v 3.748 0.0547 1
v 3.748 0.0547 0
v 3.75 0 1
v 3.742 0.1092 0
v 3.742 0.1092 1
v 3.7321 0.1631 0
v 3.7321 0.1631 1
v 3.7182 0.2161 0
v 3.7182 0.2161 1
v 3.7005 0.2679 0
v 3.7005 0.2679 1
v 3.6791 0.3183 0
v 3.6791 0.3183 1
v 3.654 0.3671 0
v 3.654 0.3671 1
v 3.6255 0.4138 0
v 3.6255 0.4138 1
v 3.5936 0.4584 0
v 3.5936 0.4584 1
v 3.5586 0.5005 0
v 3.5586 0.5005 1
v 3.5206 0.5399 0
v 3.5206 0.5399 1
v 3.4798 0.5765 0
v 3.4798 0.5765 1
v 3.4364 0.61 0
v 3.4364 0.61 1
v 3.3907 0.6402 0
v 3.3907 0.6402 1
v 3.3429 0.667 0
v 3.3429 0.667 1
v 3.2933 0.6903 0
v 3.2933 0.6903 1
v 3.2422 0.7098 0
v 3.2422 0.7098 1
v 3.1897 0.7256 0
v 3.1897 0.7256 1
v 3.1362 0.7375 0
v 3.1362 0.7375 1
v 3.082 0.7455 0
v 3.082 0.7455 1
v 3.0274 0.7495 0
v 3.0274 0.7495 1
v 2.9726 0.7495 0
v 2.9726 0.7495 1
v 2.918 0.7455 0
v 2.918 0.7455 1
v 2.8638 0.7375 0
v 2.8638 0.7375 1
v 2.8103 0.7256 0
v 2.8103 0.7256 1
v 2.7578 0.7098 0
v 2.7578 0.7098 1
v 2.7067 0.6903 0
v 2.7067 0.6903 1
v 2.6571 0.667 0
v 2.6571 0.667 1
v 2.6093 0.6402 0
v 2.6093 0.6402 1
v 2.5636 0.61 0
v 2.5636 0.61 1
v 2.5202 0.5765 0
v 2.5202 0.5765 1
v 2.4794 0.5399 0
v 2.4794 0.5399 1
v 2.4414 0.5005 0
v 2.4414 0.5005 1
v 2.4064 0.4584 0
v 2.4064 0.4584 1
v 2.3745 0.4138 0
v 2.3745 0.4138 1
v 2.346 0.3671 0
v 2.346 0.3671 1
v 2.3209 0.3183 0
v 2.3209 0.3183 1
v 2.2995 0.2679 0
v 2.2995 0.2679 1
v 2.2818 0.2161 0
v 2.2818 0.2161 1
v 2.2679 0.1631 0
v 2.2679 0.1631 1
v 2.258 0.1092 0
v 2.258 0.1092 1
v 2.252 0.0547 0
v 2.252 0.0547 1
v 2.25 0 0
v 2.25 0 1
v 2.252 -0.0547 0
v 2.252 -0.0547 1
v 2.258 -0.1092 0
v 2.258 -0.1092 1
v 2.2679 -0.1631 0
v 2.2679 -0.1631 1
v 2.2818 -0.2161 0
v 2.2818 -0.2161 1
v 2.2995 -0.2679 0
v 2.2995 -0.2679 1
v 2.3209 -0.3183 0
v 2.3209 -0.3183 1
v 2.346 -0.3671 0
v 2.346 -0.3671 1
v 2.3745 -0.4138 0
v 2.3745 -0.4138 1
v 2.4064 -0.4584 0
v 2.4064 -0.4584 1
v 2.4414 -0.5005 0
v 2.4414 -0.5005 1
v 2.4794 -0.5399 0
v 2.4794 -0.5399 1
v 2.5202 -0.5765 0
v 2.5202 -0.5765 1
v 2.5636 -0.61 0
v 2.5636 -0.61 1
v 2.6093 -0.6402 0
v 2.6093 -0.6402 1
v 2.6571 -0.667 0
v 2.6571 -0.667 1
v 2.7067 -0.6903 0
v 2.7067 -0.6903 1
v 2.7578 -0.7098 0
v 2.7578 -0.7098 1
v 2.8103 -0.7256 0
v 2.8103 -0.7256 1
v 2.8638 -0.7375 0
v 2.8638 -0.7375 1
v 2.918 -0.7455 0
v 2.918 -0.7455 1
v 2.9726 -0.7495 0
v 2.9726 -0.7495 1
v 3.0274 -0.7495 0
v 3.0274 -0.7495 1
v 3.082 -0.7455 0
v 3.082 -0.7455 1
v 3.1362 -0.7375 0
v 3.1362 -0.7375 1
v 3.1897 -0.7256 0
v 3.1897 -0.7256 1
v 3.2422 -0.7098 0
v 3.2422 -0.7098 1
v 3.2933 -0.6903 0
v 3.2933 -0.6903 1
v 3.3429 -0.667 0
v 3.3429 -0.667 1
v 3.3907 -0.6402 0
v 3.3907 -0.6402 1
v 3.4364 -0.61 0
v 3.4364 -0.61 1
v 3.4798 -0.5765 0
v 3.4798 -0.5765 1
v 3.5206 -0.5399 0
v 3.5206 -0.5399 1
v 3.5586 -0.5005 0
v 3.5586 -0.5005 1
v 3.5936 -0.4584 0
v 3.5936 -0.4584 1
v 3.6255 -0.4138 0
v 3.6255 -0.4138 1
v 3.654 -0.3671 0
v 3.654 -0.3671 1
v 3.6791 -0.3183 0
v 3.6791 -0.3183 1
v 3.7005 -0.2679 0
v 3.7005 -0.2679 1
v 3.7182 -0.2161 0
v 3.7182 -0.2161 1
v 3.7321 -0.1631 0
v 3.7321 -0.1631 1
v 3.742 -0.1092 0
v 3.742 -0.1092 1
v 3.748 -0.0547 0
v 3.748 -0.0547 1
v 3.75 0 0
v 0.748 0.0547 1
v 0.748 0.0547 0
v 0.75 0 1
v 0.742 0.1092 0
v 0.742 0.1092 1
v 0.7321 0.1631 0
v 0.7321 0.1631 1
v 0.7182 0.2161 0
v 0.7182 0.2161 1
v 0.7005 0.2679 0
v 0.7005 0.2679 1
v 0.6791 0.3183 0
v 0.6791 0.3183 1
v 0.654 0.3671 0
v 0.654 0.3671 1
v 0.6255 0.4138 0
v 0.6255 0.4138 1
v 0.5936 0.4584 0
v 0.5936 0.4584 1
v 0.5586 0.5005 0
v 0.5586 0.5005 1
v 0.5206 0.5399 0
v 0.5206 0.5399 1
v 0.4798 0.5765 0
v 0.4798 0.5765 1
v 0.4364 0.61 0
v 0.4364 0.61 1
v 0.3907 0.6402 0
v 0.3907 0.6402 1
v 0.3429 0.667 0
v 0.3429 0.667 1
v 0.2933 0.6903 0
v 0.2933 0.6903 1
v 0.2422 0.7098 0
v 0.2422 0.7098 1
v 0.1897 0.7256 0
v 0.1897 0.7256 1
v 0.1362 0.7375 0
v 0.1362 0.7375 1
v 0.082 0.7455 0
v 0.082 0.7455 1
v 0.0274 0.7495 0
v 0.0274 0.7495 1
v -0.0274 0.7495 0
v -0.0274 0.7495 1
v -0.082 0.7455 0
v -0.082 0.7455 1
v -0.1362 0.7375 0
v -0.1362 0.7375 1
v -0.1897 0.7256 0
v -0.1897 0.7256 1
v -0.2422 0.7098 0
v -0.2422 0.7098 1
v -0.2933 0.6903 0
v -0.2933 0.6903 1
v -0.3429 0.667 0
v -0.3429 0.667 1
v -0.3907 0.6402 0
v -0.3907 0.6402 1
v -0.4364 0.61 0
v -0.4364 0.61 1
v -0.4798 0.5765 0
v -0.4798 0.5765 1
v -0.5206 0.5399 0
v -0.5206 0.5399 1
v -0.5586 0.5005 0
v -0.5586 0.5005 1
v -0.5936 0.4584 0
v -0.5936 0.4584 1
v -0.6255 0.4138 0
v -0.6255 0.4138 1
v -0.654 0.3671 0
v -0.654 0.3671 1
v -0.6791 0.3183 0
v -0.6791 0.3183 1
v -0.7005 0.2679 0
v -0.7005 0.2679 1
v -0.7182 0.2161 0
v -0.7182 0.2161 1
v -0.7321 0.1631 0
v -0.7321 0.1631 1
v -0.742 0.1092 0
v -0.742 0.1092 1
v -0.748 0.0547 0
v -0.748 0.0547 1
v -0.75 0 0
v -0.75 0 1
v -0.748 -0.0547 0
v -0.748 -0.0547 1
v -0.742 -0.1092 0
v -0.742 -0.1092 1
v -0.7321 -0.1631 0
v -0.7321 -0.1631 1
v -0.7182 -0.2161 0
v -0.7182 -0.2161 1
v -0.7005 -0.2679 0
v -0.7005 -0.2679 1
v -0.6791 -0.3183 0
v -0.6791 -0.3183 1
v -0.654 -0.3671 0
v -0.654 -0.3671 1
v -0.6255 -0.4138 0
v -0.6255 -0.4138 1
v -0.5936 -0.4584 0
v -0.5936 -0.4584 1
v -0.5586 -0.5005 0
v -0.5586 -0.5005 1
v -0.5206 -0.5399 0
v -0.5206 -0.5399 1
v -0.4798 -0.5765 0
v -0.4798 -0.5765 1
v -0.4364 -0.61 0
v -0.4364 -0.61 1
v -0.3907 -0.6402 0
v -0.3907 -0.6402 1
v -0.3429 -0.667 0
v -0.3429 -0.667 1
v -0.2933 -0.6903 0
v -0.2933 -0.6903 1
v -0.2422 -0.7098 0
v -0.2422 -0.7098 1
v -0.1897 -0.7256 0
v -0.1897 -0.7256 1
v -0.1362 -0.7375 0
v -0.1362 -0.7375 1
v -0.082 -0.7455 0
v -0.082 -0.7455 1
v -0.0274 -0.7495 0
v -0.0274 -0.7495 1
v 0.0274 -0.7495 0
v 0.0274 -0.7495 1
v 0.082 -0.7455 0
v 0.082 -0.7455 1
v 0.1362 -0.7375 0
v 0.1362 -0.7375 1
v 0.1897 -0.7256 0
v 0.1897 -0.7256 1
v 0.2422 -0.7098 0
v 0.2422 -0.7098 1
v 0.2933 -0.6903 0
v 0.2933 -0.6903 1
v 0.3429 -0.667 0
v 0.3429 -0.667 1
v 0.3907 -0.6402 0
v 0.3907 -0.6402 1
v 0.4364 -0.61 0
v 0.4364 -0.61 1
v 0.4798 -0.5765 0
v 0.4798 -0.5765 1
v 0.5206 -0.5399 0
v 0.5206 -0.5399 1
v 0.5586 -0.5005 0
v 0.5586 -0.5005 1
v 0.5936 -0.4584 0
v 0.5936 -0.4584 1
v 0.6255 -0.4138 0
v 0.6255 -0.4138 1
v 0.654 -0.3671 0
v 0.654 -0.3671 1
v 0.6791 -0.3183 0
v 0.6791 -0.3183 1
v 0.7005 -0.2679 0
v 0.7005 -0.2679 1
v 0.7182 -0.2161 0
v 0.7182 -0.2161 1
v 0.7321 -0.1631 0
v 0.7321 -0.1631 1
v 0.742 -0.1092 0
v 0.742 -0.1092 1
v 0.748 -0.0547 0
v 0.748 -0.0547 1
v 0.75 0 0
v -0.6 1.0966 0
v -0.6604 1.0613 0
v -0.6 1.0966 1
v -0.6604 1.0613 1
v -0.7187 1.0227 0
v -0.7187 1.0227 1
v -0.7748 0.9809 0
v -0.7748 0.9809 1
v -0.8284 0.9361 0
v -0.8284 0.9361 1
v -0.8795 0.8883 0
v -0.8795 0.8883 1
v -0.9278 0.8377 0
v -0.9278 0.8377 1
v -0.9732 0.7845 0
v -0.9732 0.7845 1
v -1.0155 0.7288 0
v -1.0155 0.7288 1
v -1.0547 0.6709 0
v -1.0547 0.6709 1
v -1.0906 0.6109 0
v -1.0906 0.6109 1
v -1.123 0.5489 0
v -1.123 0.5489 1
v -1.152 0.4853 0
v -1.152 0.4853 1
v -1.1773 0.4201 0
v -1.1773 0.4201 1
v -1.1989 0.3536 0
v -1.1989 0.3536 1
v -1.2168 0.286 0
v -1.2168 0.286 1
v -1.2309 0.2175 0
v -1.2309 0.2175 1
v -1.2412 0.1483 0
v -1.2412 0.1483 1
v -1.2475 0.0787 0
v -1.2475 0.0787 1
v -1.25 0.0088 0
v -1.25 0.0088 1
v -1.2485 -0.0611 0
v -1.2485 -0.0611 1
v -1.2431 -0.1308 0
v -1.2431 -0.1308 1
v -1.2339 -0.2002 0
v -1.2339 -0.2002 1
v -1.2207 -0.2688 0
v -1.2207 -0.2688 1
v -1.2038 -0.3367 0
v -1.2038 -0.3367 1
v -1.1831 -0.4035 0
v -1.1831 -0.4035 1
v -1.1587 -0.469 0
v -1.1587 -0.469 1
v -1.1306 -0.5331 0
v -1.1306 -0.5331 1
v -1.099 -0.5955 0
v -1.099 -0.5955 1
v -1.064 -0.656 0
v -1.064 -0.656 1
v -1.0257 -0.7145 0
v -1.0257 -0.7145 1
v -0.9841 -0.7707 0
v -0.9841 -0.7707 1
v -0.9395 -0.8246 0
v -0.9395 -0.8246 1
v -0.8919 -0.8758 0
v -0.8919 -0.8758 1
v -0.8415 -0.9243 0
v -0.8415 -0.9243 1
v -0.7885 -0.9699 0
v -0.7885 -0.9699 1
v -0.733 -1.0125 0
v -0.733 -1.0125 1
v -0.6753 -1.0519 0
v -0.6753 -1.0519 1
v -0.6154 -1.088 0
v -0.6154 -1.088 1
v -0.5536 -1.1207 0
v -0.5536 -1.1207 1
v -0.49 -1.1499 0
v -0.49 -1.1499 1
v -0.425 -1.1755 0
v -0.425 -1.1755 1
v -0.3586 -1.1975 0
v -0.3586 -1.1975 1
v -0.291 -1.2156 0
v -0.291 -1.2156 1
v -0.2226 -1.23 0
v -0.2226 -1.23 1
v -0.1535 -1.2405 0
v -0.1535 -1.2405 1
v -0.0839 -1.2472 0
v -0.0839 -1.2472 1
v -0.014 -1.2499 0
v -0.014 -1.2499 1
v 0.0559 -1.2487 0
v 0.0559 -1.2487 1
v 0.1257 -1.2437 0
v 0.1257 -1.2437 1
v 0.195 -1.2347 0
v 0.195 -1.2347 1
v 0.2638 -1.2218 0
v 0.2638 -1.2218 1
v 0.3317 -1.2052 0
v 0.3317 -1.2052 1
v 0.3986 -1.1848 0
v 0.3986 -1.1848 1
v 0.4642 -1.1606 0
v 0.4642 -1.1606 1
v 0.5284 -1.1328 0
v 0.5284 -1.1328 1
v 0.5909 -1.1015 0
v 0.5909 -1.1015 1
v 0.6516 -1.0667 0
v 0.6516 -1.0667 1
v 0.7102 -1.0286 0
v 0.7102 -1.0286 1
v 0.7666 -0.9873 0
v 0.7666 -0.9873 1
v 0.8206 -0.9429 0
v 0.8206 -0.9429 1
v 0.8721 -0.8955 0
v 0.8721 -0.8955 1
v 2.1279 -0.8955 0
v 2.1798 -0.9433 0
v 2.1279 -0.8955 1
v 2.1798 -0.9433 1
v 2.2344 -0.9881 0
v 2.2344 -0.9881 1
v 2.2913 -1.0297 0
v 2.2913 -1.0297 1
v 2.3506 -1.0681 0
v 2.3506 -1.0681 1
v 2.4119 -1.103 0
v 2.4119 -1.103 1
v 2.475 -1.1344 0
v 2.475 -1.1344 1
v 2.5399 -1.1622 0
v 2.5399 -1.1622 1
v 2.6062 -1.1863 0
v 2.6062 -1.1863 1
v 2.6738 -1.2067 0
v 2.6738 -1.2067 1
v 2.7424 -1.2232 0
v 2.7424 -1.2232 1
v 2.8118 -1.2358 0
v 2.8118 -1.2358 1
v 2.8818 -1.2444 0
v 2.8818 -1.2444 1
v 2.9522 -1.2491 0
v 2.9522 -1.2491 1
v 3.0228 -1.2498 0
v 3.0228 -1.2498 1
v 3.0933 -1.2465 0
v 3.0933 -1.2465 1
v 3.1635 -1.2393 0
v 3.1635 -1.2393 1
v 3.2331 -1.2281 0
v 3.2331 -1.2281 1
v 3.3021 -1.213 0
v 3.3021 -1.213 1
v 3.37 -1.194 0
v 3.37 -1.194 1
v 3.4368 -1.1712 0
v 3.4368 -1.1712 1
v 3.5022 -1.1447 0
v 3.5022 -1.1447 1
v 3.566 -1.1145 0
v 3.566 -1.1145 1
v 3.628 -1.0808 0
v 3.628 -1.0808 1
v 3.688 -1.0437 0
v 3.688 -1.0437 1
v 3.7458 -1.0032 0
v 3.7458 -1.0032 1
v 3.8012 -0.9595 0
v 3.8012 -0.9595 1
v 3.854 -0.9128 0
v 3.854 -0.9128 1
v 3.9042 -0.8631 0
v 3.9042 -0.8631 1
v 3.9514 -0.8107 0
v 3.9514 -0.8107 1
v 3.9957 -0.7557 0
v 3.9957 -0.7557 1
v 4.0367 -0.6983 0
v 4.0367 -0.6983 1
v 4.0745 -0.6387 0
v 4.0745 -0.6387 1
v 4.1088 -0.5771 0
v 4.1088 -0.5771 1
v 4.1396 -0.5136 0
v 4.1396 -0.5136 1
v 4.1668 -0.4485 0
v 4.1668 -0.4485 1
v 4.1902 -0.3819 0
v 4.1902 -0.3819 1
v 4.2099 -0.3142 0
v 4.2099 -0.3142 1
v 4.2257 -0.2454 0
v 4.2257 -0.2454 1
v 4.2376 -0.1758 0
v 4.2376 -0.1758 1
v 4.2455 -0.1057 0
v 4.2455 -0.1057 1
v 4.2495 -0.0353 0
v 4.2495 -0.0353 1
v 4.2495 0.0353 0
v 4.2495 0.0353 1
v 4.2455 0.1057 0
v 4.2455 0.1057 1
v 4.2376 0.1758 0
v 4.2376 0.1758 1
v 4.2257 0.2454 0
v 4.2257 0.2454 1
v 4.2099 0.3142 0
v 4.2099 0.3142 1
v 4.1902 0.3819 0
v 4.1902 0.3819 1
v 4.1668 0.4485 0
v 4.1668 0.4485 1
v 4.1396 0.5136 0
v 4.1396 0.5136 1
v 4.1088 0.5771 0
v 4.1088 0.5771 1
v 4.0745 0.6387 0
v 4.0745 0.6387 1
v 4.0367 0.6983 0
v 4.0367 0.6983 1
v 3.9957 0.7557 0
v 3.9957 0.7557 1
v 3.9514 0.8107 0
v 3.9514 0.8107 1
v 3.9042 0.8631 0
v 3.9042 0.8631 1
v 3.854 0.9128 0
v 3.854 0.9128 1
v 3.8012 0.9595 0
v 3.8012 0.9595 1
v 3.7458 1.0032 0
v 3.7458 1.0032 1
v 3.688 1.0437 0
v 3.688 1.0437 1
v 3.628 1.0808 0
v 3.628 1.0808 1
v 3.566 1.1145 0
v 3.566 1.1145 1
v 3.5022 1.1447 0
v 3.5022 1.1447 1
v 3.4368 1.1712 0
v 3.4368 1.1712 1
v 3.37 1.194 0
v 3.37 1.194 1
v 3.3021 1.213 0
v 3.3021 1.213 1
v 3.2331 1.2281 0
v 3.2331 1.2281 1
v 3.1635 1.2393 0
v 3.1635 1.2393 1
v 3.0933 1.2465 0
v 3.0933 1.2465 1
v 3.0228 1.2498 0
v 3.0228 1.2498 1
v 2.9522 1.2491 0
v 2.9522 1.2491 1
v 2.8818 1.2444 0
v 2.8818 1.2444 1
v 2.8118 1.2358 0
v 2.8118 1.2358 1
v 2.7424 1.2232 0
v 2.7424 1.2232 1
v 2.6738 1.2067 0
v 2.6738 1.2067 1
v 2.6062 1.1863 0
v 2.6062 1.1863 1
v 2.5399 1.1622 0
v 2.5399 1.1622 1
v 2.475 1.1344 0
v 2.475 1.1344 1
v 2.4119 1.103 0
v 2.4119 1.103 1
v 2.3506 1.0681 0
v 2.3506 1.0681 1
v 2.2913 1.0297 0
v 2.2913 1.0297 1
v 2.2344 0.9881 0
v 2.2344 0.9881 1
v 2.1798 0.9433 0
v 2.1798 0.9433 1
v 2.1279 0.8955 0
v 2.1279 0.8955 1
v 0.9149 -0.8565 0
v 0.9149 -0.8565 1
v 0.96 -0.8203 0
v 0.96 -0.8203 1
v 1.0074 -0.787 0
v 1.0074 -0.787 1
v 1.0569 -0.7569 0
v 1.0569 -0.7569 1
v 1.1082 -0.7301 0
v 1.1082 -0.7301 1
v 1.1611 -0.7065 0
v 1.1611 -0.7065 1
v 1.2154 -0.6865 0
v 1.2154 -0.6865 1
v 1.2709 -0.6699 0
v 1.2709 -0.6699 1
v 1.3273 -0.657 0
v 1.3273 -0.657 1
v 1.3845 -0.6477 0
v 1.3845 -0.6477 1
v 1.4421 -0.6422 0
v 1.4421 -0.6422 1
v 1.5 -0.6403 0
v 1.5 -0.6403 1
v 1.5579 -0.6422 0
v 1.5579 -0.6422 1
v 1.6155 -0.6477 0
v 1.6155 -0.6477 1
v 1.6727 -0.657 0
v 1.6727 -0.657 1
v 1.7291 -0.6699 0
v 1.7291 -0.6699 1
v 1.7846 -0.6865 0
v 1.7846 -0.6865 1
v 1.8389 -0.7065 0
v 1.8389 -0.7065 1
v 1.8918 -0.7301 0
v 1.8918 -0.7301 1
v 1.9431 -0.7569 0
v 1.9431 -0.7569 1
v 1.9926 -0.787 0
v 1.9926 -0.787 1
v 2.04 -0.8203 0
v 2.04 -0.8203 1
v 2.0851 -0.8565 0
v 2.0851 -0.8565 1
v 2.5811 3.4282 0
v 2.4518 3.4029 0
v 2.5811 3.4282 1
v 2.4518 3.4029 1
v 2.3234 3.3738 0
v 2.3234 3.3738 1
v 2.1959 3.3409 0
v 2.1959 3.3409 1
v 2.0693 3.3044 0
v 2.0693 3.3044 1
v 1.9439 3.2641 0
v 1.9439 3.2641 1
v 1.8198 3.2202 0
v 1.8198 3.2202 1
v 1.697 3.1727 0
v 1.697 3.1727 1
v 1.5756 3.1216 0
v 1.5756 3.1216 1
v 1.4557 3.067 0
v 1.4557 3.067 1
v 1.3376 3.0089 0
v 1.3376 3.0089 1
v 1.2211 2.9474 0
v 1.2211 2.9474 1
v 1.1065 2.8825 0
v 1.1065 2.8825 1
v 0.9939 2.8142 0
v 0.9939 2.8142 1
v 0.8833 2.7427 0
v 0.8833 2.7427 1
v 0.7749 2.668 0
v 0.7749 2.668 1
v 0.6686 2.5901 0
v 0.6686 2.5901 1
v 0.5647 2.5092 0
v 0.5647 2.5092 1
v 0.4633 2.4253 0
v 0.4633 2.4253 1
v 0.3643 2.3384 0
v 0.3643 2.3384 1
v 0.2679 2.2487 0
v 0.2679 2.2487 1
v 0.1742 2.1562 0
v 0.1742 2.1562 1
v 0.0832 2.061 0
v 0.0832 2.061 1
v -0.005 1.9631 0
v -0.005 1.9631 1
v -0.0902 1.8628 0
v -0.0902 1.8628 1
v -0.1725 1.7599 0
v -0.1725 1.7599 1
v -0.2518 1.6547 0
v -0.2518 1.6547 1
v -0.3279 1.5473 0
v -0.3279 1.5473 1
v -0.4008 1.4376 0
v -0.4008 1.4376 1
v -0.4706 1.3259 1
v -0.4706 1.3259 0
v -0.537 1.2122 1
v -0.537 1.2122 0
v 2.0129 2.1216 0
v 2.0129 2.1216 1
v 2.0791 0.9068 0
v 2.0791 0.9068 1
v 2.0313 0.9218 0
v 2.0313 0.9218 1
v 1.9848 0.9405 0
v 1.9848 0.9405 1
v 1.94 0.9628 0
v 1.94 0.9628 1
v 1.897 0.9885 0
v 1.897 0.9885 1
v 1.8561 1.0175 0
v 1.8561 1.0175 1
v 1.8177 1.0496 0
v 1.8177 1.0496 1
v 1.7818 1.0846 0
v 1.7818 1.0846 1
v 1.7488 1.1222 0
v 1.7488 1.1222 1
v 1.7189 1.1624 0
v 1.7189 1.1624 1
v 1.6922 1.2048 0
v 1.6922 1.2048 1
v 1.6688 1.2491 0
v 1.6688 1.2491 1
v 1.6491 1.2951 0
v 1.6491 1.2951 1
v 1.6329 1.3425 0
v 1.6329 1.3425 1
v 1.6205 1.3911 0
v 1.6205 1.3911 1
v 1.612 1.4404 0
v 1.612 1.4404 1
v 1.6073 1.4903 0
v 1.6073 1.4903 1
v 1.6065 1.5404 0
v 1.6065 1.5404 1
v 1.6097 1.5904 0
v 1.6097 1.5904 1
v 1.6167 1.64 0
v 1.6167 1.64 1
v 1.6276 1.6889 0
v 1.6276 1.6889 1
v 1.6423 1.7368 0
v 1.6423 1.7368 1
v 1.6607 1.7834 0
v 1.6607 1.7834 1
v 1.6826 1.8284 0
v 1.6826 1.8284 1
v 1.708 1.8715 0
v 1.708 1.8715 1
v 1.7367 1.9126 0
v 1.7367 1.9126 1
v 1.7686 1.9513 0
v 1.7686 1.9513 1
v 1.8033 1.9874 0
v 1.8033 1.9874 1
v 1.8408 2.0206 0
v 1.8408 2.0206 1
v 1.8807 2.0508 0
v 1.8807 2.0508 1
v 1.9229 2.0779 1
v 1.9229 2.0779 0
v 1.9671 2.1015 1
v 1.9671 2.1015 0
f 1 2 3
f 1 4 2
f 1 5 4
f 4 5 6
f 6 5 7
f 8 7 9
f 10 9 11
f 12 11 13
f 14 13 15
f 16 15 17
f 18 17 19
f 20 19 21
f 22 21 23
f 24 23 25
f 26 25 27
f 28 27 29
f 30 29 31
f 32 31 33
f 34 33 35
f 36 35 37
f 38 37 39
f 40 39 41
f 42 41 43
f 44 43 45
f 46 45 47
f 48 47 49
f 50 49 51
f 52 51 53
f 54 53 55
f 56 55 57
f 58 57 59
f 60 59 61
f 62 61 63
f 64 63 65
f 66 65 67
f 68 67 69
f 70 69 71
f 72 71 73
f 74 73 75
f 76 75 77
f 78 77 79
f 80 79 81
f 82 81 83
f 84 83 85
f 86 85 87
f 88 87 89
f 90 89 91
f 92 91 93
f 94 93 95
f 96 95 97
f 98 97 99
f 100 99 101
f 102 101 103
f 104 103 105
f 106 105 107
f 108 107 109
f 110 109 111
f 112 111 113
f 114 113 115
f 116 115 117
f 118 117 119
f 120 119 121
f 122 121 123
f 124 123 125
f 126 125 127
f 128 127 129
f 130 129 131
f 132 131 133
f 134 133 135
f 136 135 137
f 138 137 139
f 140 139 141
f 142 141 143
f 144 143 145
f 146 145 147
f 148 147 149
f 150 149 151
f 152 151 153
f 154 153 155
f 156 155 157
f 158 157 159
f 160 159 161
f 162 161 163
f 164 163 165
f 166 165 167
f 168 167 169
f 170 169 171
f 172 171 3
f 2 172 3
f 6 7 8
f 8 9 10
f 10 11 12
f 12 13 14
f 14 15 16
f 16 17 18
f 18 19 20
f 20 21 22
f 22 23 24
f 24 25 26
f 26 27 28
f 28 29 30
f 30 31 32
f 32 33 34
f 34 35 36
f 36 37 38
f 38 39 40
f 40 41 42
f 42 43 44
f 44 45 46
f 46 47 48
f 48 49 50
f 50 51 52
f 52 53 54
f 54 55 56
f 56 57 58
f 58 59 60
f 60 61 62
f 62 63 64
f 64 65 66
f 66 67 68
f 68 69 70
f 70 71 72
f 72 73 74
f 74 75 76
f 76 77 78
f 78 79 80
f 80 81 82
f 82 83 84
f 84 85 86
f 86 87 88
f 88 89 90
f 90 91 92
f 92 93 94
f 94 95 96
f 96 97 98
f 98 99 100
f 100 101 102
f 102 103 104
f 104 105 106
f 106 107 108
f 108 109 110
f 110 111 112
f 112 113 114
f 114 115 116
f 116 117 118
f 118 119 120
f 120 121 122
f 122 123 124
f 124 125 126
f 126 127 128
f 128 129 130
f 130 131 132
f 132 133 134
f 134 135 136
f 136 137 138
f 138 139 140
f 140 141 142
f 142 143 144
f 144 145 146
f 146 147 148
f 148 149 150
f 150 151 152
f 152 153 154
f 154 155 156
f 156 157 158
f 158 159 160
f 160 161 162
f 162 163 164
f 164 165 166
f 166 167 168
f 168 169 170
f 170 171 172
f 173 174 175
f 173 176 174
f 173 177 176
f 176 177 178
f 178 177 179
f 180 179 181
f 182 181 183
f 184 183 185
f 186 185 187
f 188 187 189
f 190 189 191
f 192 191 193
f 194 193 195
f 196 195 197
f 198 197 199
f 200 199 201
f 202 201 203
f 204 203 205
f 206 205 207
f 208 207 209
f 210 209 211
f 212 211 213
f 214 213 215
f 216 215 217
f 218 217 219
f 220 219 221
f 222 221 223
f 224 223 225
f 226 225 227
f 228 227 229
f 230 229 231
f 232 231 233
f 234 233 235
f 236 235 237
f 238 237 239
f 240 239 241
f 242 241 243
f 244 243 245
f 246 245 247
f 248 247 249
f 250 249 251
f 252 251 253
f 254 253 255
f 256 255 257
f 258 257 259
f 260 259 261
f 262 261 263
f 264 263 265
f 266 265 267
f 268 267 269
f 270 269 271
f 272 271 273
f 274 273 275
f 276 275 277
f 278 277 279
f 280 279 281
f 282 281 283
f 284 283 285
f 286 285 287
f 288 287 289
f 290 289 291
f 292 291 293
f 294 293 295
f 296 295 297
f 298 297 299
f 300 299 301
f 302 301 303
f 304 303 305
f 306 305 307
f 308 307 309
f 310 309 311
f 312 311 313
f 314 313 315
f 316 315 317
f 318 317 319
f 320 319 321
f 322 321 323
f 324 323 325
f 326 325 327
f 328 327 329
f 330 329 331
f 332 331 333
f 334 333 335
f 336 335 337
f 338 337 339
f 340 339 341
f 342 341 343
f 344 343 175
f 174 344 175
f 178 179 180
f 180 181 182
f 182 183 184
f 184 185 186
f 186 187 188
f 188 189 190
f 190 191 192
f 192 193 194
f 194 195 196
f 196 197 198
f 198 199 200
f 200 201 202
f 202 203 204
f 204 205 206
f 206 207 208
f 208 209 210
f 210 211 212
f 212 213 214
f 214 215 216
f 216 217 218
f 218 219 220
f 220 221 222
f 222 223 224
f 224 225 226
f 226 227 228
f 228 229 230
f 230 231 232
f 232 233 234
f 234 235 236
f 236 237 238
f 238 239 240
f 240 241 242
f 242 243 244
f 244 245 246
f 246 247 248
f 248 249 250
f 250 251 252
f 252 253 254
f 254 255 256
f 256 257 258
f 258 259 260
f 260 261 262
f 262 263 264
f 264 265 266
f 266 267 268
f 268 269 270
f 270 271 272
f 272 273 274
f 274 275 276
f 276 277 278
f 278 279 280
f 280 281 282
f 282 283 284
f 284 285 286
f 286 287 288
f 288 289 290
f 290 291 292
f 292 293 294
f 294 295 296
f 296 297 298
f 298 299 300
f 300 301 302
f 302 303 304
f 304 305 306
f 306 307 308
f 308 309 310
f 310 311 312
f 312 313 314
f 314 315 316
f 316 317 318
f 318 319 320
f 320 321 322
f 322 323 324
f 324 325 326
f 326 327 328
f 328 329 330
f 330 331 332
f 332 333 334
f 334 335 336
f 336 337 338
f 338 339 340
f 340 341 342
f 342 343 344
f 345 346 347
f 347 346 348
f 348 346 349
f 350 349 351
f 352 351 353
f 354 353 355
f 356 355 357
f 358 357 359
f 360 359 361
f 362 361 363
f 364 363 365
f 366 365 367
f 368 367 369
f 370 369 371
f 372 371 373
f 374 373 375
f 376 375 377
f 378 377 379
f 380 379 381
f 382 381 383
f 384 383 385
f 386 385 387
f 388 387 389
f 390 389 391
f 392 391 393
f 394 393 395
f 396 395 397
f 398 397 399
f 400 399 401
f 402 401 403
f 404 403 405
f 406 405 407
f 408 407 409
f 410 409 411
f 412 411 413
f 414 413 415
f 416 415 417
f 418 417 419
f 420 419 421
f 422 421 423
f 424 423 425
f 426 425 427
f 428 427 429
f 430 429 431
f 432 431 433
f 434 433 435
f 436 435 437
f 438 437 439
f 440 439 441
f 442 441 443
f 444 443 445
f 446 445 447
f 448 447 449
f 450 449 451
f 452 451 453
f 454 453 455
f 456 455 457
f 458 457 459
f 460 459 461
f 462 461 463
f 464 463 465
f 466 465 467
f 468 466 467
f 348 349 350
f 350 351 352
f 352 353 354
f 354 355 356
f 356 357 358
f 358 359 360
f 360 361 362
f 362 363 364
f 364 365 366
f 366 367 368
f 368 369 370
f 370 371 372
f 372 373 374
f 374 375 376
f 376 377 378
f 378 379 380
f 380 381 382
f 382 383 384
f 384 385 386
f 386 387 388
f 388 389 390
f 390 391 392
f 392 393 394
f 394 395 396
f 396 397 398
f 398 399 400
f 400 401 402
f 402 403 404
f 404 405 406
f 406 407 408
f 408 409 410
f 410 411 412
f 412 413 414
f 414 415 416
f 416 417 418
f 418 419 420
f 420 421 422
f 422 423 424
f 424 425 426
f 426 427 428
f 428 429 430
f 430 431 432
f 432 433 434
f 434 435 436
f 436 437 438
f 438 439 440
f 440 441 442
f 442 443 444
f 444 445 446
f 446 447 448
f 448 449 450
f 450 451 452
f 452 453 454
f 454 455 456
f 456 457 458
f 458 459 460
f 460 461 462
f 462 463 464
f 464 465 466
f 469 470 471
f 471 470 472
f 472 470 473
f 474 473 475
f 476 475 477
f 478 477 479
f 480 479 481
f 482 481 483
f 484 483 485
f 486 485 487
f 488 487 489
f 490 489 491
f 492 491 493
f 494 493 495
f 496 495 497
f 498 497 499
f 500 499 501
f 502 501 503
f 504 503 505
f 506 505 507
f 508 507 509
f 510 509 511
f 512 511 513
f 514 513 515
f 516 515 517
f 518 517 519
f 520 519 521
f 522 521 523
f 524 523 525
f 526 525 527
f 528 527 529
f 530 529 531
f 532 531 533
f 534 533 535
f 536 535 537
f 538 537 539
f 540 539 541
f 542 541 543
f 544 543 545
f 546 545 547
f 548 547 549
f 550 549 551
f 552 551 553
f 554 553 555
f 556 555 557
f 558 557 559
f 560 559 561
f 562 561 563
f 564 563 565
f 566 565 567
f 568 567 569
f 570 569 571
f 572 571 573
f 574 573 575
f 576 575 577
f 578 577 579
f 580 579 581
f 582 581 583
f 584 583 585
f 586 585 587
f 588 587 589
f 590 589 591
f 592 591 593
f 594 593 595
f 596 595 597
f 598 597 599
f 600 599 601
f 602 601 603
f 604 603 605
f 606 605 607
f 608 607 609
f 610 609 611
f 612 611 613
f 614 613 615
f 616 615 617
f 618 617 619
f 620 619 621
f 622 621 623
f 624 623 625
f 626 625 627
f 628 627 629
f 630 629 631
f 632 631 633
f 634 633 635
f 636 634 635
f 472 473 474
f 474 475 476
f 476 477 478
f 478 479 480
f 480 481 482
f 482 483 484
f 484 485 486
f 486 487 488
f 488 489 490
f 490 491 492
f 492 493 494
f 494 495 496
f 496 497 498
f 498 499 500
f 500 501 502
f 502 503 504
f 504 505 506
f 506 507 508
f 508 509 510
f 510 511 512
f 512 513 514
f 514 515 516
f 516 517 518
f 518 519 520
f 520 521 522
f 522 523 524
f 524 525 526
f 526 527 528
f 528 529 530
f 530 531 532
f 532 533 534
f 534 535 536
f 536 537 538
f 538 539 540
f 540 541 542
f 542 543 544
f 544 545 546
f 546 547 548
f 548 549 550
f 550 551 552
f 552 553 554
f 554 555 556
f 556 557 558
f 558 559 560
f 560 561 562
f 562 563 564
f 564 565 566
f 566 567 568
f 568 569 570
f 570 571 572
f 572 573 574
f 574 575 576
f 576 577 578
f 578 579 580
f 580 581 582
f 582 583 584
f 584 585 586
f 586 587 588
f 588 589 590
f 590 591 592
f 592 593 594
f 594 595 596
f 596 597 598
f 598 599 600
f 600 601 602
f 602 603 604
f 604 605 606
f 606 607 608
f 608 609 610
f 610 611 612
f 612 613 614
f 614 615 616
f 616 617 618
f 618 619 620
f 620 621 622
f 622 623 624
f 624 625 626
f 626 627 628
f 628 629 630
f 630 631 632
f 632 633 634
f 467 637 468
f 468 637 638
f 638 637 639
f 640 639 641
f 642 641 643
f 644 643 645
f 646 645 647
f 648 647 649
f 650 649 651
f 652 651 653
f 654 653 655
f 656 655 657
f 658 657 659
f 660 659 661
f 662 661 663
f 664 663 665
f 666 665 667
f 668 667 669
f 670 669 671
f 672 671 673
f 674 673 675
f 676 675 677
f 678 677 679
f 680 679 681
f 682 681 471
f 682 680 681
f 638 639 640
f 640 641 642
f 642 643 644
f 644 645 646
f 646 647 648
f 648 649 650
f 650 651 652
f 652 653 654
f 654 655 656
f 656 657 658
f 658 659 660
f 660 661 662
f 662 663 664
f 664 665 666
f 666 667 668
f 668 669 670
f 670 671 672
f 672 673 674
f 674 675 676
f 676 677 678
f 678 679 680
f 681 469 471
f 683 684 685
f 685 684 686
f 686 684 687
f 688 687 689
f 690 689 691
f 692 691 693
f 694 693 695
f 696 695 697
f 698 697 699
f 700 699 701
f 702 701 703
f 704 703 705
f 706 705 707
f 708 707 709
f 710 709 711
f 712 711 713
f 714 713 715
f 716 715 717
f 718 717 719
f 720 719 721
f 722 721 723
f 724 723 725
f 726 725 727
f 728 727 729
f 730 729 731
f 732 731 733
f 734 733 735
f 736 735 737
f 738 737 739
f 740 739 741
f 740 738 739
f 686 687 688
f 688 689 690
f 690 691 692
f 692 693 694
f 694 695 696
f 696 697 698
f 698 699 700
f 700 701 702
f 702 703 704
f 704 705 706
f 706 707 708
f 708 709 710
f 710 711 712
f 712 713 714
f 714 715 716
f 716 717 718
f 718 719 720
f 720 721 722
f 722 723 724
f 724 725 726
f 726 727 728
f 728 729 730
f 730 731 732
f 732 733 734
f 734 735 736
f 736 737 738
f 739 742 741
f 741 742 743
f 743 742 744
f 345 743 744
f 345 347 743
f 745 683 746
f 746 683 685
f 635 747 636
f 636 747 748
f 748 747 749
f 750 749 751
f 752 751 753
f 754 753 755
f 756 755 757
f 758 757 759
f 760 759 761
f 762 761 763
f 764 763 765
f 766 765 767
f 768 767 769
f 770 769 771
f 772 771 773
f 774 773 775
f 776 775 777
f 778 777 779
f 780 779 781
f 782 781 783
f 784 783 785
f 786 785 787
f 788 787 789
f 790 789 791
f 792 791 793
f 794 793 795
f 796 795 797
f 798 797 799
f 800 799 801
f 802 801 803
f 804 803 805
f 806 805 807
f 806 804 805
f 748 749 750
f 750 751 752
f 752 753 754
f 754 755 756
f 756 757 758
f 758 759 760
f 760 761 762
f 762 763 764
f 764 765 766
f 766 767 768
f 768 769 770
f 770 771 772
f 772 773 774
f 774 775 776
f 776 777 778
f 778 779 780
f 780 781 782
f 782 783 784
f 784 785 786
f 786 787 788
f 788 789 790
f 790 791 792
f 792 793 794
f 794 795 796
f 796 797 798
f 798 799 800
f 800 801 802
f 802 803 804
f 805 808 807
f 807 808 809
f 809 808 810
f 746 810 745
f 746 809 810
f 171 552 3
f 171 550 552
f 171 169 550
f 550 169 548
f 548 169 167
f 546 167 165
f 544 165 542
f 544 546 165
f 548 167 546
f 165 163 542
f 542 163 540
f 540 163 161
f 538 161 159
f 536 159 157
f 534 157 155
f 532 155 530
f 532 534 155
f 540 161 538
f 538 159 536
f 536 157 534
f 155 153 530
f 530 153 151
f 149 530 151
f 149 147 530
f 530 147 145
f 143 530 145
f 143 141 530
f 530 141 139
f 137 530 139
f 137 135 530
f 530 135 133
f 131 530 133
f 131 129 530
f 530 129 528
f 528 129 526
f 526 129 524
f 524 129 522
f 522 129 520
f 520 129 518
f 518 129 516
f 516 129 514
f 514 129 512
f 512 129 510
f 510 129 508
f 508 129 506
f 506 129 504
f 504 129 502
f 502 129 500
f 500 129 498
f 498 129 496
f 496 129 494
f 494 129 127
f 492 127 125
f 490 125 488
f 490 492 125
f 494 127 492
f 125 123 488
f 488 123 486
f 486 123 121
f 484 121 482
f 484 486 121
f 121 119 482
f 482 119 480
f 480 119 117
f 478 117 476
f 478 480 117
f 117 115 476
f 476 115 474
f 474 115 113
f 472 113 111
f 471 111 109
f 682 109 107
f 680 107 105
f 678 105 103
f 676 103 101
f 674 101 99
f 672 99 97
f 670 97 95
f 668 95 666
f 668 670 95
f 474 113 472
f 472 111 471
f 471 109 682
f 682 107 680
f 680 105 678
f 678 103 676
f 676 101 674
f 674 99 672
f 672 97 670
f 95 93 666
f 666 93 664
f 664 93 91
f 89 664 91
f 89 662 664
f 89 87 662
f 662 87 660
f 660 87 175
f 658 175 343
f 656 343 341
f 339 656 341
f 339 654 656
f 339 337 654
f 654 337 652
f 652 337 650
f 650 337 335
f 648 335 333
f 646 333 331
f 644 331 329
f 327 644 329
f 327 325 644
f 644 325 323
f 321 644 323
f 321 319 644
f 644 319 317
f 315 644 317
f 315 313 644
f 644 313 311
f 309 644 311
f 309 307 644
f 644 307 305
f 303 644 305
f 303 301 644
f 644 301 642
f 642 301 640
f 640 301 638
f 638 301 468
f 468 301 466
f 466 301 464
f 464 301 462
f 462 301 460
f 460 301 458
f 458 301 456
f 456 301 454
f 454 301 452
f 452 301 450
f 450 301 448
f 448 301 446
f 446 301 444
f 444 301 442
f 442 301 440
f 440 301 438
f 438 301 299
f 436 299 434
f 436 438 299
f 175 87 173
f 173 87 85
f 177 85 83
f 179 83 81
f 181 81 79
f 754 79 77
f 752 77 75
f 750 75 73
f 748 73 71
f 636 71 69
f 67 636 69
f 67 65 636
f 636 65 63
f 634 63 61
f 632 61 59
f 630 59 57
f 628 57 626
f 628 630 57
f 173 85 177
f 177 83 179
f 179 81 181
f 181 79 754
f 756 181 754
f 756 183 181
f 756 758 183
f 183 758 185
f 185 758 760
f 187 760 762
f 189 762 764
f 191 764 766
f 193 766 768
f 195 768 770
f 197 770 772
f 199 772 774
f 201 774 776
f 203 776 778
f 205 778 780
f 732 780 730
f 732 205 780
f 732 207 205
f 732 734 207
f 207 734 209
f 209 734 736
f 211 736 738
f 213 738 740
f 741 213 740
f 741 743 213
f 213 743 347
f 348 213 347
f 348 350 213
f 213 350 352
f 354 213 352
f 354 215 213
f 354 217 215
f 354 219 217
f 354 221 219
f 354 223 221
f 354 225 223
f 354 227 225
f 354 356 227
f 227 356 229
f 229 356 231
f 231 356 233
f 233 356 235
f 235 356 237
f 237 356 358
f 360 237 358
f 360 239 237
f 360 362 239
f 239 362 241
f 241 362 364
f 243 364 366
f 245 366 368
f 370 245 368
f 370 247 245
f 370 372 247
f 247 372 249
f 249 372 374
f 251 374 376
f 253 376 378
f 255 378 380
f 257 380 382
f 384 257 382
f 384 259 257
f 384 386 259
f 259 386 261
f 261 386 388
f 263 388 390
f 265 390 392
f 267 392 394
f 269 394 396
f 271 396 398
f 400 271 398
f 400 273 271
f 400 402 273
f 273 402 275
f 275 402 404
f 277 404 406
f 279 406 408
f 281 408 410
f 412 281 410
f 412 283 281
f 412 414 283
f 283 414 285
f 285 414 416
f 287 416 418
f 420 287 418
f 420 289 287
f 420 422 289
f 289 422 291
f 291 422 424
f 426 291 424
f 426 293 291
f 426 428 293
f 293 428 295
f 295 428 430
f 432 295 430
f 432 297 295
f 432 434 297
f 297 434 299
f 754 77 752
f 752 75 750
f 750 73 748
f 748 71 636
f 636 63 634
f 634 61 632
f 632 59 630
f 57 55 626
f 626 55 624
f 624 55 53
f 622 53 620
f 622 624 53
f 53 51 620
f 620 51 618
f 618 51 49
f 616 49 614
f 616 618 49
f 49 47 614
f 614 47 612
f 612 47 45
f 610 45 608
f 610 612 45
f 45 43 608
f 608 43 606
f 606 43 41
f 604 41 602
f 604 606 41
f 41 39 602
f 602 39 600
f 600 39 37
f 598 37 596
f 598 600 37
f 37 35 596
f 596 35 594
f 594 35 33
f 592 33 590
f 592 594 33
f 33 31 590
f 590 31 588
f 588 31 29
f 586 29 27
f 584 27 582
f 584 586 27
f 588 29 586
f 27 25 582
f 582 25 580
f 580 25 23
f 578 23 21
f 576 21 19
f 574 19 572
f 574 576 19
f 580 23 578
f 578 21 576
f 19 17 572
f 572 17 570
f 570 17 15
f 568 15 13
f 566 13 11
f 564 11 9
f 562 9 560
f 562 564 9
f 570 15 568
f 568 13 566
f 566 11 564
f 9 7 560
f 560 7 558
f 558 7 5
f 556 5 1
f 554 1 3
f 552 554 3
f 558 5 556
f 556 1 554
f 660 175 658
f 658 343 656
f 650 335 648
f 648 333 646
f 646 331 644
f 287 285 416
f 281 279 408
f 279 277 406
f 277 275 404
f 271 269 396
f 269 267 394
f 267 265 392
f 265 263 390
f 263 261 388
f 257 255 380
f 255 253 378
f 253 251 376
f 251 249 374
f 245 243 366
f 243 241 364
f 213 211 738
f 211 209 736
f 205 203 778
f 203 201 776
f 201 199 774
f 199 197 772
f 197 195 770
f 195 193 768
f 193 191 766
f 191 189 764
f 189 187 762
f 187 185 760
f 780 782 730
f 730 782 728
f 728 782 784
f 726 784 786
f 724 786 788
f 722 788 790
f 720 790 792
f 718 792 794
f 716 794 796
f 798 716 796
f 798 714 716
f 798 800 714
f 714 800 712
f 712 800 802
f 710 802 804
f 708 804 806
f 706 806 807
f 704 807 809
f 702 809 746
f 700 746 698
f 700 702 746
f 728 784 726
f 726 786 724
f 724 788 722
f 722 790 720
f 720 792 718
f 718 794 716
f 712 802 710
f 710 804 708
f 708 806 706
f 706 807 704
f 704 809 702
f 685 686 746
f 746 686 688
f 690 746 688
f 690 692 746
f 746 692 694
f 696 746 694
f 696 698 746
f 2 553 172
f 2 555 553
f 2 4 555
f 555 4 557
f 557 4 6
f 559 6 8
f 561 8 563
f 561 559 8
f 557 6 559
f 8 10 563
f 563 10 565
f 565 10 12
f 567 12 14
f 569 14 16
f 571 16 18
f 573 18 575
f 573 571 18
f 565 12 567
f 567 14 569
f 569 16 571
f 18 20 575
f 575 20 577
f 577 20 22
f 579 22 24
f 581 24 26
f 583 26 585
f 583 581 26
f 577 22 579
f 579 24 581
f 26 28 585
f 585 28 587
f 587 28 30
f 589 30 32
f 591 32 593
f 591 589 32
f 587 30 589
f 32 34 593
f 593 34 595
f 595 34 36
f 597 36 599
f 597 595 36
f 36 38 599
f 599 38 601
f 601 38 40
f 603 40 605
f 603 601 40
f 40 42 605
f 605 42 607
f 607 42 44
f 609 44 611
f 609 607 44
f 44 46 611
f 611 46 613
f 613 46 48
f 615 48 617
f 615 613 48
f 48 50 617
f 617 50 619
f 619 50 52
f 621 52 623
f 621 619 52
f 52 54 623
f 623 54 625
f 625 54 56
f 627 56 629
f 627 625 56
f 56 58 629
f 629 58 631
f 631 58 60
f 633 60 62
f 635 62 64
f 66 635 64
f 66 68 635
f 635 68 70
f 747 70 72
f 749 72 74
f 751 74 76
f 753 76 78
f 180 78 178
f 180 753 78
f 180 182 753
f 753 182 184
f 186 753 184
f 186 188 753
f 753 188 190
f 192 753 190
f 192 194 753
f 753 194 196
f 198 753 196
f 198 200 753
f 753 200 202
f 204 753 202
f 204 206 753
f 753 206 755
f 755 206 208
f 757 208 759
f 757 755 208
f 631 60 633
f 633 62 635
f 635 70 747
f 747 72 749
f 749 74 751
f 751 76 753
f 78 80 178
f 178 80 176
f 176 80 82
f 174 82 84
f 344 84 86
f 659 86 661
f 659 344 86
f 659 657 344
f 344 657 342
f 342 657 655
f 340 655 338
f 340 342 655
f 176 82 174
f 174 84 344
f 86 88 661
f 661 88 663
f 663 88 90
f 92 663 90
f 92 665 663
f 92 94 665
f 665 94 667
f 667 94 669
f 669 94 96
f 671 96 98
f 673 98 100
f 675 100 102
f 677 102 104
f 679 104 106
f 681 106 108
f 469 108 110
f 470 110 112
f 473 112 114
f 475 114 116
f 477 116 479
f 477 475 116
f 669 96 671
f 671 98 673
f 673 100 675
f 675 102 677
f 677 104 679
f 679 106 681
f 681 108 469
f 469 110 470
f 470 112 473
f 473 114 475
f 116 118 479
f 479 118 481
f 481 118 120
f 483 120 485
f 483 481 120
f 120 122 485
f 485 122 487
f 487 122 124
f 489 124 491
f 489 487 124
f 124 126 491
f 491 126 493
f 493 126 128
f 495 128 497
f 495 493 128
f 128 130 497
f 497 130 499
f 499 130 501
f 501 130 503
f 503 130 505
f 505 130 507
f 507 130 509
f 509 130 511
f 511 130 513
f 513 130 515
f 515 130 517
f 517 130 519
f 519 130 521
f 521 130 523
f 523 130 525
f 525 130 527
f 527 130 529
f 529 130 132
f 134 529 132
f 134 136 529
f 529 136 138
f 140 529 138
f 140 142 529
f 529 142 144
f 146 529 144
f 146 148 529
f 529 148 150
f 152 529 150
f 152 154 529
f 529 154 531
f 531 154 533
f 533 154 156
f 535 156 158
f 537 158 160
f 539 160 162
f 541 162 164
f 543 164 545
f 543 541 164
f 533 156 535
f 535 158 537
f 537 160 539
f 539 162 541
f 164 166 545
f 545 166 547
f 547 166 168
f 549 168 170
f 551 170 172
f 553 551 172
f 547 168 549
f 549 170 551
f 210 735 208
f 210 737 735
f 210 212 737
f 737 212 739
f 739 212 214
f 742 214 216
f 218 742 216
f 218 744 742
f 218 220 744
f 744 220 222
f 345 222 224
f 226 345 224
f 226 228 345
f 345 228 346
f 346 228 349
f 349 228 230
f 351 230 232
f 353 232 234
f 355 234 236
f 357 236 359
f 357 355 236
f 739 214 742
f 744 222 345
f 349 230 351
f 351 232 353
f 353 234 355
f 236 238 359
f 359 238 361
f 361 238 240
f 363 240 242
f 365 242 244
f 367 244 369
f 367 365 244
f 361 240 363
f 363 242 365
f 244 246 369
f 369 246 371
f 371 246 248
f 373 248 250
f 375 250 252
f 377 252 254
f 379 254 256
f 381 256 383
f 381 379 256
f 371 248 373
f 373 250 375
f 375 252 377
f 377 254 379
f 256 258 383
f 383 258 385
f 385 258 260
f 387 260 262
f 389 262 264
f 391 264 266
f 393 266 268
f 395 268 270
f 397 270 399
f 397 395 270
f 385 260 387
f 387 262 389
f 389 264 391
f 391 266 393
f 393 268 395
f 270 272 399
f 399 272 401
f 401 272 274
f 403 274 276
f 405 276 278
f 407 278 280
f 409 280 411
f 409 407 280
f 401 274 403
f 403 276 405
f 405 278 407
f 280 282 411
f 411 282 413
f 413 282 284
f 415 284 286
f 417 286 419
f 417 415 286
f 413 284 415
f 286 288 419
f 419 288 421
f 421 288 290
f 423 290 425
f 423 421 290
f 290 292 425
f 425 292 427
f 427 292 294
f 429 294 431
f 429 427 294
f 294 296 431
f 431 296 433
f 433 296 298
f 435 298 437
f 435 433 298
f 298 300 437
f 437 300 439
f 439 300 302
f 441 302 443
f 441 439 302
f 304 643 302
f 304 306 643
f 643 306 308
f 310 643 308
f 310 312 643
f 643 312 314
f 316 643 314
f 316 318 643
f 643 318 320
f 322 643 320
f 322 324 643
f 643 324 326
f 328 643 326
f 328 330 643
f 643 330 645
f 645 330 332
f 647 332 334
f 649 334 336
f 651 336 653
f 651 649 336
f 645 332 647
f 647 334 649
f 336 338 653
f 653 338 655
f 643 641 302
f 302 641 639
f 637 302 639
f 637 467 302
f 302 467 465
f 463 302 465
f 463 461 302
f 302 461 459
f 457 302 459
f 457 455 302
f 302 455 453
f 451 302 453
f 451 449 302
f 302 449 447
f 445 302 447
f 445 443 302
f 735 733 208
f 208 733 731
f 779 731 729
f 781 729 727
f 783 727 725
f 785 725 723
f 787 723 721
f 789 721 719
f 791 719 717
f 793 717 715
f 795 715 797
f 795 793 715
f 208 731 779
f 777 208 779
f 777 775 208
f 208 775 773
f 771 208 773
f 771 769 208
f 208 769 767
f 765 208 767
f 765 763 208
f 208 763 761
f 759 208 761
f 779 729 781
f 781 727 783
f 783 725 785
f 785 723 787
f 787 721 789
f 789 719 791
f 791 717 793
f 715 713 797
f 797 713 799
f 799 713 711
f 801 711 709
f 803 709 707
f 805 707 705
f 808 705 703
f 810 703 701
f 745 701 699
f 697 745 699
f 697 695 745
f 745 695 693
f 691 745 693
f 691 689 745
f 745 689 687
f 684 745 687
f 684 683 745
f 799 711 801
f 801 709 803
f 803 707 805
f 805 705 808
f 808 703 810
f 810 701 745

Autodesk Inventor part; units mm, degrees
ref_plane "YZ Plane" through (0, 0, 0) normal (1, 0, 0) x (0, 1, 0)
ref_plane "XZ Plane" through (0, 0, 0) normal (0, 1, 0) x (-1, 0, 0)
ref_plane "XY Plane" through (0, 0, 0) normal (0, 0, 1) x (1, 0, 0)
sketch "Body" plane through (0, 0, 0) normal (0, 0, 1) x (1, 0, 0)
  circle A0 centre (0, 0) radius 0.75
  line L0 (0, 0) -> (3, 0) construction
  circle A1 centre (3, 0) radius 0.75
  arc A2 (0.8721, 0.8955) -> (0.8721, -0.8955) centre (0, 0) ccw
  arc A3 (2.1279, -0.8955) -> (2.1279, 0.8955) centre (3, 0) ccw
  arc A4 (0.8721, 0.8955) -> (2.1279, 0.8955) centre (1.5, 1.5403) ccw
  arc A5 (2.1279, -0.8955) -> (0.8721, -0.8955) centre (1.5, -1.5403) ccw
  arc A6 (2.5811, 3.4282) -> (-0.6, 1.0966) centre (3.3817, -1) ccw
  line L1 (2.5811, 3.4282) -> (2.0129, 2.1216)
  arc A7 (2.0129, 2.1216) -> (2.1279, 0.8955) centre (2.2472, 1.5251) ccw
  dimension "d0" = 1.5
  dimension "d1" = 3
  dimension "d3" = 2.5
  dimension "d5" = 0.9
  dimension "d8" = 4.5
  dimension "d10" = 113.5
  dimension "d13" = 1
  dimension "d15" = 0.6408
  dimension "d16" = 1
  dimension "d17" = 2.5
  dimension "d18" = 0.4526
extrude "BodyFeature" add sketch "Body" along normal blind 1
properties part number "ChainTooth"
